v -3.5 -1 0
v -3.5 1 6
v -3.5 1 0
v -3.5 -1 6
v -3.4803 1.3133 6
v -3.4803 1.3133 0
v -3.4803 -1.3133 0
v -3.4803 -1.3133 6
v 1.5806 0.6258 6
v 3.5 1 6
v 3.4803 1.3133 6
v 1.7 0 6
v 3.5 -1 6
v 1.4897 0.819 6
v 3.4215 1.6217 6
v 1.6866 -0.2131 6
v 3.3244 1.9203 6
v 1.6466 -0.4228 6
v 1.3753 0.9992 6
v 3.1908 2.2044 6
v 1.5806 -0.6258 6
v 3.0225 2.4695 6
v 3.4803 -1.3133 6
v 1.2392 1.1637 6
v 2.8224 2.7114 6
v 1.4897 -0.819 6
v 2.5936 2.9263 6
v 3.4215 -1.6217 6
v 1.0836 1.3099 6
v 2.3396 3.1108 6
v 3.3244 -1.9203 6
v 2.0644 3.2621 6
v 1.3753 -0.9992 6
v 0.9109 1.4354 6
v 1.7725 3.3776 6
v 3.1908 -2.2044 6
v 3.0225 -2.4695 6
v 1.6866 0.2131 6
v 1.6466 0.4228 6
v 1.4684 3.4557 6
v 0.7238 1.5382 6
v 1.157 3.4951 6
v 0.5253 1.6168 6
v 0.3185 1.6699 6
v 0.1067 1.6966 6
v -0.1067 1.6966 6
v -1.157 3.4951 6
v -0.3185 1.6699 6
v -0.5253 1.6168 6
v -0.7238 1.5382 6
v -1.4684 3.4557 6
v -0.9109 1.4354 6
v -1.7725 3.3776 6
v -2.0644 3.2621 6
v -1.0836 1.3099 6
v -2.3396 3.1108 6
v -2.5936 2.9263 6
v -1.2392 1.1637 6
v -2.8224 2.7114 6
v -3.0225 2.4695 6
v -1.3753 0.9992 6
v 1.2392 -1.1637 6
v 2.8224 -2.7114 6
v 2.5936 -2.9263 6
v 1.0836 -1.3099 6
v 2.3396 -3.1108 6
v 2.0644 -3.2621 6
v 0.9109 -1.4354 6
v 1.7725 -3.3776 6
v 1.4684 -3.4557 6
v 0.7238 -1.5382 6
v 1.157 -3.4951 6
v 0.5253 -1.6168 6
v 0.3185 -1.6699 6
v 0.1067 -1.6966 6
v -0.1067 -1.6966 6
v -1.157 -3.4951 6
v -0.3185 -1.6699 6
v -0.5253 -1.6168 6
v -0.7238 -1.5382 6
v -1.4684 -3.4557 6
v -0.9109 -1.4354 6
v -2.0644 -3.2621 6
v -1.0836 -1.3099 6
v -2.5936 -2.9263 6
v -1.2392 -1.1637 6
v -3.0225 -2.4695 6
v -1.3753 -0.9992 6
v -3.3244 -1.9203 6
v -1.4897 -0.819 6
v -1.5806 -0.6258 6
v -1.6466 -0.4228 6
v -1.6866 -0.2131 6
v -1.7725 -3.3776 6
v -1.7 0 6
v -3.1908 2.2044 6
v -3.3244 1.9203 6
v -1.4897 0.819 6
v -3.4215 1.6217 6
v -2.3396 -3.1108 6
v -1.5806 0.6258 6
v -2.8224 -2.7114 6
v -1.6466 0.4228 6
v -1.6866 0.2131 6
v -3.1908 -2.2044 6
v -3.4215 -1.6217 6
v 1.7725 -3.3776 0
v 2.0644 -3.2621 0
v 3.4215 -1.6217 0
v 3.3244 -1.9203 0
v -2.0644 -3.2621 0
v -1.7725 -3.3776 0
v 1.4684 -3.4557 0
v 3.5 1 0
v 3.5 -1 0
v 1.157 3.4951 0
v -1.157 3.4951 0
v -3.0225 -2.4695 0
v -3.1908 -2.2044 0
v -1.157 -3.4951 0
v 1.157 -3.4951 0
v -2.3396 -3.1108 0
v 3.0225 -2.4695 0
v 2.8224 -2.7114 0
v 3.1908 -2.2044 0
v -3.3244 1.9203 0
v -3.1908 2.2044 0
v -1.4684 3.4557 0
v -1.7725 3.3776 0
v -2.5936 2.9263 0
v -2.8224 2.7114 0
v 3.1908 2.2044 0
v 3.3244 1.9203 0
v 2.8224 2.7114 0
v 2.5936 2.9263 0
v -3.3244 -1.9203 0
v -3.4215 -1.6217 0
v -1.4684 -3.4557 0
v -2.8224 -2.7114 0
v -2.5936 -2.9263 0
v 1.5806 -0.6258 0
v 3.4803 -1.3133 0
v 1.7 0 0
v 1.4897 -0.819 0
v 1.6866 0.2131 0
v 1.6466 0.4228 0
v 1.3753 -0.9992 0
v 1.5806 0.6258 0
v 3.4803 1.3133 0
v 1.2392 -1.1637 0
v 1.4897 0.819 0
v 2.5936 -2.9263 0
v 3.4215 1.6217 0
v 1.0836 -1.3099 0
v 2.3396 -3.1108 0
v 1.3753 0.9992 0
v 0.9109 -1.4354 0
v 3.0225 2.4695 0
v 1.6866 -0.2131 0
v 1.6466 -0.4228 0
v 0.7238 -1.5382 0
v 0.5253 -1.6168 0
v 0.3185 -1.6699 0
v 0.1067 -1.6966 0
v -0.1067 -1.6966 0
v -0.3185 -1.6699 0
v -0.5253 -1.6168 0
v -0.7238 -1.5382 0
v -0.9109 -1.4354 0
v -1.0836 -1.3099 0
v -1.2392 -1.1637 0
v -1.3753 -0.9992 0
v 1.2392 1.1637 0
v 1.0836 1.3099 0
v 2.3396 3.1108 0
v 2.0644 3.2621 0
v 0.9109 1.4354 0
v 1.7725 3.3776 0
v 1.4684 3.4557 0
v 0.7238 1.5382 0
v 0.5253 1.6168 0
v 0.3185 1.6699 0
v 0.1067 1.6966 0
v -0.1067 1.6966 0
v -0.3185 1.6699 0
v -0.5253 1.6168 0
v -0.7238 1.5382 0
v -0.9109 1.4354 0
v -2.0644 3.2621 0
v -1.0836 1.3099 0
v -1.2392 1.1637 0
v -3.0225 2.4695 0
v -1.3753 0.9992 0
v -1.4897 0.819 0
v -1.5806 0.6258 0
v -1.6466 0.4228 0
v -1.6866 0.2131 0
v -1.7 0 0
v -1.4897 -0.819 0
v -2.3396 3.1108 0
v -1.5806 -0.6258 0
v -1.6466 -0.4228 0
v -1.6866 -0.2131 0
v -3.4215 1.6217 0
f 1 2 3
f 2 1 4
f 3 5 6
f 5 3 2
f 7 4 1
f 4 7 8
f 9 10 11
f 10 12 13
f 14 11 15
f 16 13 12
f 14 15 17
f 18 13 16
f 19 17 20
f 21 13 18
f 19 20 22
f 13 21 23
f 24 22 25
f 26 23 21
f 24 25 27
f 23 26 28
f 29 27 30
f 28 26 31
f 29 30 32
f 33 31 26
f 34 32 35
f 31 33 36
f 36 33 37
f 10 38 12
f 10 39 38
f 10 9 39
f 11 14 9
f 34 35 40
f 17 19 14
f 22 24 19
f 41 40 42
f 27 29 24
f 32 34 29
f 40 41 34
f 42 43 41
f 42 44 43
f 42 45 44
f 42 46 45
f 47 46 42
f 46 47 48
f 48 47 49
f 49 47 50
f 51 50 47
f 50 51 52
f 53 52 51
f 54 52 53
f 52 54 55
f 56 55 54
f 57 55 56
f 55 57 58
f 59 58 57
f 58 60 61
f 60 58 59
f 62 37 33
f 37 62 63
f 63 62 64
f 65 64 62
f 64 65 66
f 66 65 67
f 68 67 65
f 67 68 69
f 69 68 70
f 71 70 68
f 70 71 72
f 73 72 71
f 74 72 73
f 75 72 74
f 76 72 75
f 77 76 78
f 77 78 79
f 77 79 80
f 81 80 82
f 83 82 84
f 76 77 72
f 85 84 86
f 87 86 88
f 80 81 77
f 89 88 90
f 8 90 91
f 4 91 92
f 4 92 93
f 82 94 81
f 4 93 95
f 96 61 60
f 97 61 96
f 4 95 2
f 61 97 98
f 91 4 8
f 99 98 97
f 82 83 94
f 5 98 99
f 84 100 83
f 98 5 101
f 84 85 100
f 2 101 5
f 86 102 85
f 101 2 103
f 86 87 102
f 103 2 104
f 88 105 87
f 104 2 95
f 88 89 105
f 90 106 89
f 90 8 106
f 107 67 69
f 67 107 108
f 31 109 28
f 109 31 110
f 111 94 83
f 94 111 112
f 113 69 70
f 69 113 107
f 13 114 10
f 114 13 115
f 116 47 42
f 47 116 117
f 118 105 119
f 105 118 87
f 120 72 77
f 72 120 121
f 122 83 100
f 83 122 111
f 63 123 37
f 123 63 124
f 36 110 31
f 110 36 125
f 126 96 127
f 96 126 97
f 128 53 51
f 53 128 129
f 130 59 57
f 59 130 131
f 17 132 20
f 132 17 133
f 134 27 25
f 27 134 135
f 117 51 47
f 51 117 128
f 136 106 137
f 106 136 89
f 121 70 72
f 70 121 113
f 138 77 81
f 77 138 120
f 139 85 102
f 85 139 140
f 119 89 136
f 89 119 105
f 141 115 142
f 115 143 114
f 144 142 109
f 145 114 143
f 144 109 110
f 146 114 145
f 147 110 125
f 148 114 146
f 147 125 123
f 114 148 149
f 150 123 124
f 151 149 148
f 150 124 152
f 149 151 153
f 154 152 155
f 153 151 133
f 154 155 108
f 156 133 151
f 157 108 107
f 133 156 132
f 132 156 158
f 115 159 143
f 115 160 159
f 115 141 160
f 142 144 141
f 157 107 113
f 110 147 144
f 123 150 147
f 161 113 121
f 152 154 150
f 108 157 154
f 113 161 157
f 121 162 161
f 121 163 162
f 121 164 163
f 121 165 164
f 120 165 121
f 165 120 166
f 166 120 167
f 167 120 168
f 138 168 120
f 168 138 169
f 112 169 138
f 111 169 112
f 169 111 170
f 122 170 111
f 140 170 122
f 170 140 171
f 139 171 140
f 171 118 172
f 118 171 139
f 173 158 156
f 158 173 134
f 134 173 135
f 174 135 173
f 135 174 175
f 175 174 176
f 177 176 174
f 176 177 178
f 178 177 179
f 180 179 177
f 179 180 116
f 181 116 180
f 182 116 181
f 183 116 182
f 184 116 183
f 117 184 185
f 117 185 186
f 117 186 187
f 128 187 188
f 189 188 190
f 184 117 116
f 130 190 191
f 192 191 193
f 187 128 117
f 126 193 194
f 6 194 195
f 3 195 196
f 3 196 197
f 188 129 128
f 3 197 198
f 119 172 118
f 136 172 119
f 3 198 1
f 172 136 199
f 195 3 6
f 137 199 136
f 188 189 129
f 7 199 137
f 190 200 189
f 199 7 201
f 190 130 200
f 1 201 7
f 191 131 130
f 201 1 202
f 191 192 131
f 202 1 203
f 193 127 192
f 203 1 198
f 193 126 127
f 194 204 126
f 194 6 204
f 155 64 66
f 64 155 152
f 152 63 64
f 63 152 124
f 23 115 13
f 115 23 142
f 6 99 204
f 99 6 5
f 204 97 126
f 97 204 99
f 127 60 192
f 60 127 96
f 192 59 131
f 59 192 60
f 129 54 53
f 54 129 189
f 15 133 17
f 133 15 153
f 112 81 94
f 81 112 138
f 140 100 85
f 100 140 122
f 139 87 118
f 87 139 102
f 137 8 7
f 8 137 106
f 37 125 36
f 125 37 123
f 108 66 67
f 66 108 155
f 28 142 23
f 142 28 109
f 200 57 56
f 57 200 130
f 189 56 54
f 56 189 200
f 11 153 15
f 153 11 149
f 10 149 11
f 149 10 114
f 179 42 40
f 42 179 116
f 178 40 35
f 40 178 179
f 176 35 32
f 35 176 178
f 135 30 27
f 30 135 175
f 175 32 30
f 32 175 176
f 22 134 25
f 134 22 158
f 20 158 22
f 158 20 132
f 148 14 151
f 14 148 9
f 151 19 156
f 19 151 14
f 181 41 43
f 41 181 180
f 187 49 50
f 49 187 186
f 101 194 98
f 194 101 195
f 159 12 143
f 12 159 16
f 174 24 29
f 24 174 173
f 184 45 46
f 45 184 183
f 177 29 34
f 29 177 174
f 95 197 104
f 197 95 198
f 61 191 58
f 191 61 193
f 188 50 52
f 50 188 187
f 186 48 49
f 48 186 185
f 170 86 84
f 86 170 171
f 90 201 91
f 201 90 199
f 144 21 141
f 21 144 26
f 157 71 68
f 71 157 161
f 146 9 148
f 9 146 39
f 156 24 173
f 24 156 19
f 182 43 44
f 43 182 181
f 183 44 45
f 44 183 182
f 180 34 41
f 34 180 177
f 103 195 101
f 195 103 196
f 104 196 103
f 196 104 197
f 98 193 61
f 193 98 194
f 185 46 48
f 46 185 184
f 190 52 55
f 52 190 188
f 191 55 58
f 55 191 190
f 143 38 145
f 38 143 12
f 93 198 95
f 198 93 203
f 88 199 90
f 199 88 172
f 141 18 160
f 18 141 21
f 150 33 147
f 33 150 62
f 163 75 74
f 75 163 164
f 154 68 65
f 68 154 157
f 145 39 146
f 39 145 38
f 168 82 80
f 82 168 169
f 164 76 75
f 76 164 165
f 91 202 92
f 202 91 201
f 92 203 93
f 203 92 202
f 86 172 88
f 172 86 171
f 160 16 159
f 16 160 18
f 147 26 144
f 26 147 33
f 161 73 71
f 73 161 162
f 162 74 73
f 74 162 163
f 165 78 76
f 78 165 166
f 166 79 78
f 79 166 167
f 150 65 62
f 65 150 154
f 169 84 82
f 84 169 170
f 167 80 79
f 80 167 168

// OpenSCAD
$fn = 50;


difference() {
	union() {
		translate(v = [0, 0, 0]) {
			rotate(a = [0, 0, 0]) {
				hull() {
					translate(v = [-1.0000000000, 1.0000000000, 0]) {
						rotate(a = [0, 0, 0]) {
							translate(v = [0, 0, 0]) {
								rotate(a = [0, 0, 0]) {
									cylinder(h = 6.0000000000, r = 2.5000000000);
								}
							}
						}
					}
					translate(v = [1.0000000000, 1.0000000000, 0]) {
						rotate(a = [0, 0, 0]) {
							translate(v = [0, 0, 0]) {
								rotate(a = [0, 0, 0]) {
									cylinder(h = 6.0000000000, r = 2.5000000000);
								}
							}
						}
					}
					translate(v = [-1.0000000000, -1.0000000000, 0]) {
						rotate(a = [0, 0, 0]) {
							translate(v = [0, 0, 0]) {
								rotate(a = [0, 0, 0]) {
									cylinder(h = 6.0000000000, r = 2.5000000000);
								}
							}
						}
					}
					translate(v = [1.0000000000, -1.0000000000, 0]) {
						rotate(a = [0, 0, 0]) {
							translate(v = [0, 0, 0]) {
								rotate(a = [0, 0, 0]) {
									cylinder(h = 6.0000000000, r = 2.5000000000);
								}
							}
						}
					}
				}
			}
		}
	}
	union() {
		translate(v = [0.0000000000, 0.0000000000, 0]) {
			rotate(a = [0, 0, 0]) {
				translate(v = [0, 0, -50]) {
					rotate(a = [0, 0, 0]) {
						cylinder(h = 100, r = 1.7000000000);
					}
				}
			}
		}
	}
}
